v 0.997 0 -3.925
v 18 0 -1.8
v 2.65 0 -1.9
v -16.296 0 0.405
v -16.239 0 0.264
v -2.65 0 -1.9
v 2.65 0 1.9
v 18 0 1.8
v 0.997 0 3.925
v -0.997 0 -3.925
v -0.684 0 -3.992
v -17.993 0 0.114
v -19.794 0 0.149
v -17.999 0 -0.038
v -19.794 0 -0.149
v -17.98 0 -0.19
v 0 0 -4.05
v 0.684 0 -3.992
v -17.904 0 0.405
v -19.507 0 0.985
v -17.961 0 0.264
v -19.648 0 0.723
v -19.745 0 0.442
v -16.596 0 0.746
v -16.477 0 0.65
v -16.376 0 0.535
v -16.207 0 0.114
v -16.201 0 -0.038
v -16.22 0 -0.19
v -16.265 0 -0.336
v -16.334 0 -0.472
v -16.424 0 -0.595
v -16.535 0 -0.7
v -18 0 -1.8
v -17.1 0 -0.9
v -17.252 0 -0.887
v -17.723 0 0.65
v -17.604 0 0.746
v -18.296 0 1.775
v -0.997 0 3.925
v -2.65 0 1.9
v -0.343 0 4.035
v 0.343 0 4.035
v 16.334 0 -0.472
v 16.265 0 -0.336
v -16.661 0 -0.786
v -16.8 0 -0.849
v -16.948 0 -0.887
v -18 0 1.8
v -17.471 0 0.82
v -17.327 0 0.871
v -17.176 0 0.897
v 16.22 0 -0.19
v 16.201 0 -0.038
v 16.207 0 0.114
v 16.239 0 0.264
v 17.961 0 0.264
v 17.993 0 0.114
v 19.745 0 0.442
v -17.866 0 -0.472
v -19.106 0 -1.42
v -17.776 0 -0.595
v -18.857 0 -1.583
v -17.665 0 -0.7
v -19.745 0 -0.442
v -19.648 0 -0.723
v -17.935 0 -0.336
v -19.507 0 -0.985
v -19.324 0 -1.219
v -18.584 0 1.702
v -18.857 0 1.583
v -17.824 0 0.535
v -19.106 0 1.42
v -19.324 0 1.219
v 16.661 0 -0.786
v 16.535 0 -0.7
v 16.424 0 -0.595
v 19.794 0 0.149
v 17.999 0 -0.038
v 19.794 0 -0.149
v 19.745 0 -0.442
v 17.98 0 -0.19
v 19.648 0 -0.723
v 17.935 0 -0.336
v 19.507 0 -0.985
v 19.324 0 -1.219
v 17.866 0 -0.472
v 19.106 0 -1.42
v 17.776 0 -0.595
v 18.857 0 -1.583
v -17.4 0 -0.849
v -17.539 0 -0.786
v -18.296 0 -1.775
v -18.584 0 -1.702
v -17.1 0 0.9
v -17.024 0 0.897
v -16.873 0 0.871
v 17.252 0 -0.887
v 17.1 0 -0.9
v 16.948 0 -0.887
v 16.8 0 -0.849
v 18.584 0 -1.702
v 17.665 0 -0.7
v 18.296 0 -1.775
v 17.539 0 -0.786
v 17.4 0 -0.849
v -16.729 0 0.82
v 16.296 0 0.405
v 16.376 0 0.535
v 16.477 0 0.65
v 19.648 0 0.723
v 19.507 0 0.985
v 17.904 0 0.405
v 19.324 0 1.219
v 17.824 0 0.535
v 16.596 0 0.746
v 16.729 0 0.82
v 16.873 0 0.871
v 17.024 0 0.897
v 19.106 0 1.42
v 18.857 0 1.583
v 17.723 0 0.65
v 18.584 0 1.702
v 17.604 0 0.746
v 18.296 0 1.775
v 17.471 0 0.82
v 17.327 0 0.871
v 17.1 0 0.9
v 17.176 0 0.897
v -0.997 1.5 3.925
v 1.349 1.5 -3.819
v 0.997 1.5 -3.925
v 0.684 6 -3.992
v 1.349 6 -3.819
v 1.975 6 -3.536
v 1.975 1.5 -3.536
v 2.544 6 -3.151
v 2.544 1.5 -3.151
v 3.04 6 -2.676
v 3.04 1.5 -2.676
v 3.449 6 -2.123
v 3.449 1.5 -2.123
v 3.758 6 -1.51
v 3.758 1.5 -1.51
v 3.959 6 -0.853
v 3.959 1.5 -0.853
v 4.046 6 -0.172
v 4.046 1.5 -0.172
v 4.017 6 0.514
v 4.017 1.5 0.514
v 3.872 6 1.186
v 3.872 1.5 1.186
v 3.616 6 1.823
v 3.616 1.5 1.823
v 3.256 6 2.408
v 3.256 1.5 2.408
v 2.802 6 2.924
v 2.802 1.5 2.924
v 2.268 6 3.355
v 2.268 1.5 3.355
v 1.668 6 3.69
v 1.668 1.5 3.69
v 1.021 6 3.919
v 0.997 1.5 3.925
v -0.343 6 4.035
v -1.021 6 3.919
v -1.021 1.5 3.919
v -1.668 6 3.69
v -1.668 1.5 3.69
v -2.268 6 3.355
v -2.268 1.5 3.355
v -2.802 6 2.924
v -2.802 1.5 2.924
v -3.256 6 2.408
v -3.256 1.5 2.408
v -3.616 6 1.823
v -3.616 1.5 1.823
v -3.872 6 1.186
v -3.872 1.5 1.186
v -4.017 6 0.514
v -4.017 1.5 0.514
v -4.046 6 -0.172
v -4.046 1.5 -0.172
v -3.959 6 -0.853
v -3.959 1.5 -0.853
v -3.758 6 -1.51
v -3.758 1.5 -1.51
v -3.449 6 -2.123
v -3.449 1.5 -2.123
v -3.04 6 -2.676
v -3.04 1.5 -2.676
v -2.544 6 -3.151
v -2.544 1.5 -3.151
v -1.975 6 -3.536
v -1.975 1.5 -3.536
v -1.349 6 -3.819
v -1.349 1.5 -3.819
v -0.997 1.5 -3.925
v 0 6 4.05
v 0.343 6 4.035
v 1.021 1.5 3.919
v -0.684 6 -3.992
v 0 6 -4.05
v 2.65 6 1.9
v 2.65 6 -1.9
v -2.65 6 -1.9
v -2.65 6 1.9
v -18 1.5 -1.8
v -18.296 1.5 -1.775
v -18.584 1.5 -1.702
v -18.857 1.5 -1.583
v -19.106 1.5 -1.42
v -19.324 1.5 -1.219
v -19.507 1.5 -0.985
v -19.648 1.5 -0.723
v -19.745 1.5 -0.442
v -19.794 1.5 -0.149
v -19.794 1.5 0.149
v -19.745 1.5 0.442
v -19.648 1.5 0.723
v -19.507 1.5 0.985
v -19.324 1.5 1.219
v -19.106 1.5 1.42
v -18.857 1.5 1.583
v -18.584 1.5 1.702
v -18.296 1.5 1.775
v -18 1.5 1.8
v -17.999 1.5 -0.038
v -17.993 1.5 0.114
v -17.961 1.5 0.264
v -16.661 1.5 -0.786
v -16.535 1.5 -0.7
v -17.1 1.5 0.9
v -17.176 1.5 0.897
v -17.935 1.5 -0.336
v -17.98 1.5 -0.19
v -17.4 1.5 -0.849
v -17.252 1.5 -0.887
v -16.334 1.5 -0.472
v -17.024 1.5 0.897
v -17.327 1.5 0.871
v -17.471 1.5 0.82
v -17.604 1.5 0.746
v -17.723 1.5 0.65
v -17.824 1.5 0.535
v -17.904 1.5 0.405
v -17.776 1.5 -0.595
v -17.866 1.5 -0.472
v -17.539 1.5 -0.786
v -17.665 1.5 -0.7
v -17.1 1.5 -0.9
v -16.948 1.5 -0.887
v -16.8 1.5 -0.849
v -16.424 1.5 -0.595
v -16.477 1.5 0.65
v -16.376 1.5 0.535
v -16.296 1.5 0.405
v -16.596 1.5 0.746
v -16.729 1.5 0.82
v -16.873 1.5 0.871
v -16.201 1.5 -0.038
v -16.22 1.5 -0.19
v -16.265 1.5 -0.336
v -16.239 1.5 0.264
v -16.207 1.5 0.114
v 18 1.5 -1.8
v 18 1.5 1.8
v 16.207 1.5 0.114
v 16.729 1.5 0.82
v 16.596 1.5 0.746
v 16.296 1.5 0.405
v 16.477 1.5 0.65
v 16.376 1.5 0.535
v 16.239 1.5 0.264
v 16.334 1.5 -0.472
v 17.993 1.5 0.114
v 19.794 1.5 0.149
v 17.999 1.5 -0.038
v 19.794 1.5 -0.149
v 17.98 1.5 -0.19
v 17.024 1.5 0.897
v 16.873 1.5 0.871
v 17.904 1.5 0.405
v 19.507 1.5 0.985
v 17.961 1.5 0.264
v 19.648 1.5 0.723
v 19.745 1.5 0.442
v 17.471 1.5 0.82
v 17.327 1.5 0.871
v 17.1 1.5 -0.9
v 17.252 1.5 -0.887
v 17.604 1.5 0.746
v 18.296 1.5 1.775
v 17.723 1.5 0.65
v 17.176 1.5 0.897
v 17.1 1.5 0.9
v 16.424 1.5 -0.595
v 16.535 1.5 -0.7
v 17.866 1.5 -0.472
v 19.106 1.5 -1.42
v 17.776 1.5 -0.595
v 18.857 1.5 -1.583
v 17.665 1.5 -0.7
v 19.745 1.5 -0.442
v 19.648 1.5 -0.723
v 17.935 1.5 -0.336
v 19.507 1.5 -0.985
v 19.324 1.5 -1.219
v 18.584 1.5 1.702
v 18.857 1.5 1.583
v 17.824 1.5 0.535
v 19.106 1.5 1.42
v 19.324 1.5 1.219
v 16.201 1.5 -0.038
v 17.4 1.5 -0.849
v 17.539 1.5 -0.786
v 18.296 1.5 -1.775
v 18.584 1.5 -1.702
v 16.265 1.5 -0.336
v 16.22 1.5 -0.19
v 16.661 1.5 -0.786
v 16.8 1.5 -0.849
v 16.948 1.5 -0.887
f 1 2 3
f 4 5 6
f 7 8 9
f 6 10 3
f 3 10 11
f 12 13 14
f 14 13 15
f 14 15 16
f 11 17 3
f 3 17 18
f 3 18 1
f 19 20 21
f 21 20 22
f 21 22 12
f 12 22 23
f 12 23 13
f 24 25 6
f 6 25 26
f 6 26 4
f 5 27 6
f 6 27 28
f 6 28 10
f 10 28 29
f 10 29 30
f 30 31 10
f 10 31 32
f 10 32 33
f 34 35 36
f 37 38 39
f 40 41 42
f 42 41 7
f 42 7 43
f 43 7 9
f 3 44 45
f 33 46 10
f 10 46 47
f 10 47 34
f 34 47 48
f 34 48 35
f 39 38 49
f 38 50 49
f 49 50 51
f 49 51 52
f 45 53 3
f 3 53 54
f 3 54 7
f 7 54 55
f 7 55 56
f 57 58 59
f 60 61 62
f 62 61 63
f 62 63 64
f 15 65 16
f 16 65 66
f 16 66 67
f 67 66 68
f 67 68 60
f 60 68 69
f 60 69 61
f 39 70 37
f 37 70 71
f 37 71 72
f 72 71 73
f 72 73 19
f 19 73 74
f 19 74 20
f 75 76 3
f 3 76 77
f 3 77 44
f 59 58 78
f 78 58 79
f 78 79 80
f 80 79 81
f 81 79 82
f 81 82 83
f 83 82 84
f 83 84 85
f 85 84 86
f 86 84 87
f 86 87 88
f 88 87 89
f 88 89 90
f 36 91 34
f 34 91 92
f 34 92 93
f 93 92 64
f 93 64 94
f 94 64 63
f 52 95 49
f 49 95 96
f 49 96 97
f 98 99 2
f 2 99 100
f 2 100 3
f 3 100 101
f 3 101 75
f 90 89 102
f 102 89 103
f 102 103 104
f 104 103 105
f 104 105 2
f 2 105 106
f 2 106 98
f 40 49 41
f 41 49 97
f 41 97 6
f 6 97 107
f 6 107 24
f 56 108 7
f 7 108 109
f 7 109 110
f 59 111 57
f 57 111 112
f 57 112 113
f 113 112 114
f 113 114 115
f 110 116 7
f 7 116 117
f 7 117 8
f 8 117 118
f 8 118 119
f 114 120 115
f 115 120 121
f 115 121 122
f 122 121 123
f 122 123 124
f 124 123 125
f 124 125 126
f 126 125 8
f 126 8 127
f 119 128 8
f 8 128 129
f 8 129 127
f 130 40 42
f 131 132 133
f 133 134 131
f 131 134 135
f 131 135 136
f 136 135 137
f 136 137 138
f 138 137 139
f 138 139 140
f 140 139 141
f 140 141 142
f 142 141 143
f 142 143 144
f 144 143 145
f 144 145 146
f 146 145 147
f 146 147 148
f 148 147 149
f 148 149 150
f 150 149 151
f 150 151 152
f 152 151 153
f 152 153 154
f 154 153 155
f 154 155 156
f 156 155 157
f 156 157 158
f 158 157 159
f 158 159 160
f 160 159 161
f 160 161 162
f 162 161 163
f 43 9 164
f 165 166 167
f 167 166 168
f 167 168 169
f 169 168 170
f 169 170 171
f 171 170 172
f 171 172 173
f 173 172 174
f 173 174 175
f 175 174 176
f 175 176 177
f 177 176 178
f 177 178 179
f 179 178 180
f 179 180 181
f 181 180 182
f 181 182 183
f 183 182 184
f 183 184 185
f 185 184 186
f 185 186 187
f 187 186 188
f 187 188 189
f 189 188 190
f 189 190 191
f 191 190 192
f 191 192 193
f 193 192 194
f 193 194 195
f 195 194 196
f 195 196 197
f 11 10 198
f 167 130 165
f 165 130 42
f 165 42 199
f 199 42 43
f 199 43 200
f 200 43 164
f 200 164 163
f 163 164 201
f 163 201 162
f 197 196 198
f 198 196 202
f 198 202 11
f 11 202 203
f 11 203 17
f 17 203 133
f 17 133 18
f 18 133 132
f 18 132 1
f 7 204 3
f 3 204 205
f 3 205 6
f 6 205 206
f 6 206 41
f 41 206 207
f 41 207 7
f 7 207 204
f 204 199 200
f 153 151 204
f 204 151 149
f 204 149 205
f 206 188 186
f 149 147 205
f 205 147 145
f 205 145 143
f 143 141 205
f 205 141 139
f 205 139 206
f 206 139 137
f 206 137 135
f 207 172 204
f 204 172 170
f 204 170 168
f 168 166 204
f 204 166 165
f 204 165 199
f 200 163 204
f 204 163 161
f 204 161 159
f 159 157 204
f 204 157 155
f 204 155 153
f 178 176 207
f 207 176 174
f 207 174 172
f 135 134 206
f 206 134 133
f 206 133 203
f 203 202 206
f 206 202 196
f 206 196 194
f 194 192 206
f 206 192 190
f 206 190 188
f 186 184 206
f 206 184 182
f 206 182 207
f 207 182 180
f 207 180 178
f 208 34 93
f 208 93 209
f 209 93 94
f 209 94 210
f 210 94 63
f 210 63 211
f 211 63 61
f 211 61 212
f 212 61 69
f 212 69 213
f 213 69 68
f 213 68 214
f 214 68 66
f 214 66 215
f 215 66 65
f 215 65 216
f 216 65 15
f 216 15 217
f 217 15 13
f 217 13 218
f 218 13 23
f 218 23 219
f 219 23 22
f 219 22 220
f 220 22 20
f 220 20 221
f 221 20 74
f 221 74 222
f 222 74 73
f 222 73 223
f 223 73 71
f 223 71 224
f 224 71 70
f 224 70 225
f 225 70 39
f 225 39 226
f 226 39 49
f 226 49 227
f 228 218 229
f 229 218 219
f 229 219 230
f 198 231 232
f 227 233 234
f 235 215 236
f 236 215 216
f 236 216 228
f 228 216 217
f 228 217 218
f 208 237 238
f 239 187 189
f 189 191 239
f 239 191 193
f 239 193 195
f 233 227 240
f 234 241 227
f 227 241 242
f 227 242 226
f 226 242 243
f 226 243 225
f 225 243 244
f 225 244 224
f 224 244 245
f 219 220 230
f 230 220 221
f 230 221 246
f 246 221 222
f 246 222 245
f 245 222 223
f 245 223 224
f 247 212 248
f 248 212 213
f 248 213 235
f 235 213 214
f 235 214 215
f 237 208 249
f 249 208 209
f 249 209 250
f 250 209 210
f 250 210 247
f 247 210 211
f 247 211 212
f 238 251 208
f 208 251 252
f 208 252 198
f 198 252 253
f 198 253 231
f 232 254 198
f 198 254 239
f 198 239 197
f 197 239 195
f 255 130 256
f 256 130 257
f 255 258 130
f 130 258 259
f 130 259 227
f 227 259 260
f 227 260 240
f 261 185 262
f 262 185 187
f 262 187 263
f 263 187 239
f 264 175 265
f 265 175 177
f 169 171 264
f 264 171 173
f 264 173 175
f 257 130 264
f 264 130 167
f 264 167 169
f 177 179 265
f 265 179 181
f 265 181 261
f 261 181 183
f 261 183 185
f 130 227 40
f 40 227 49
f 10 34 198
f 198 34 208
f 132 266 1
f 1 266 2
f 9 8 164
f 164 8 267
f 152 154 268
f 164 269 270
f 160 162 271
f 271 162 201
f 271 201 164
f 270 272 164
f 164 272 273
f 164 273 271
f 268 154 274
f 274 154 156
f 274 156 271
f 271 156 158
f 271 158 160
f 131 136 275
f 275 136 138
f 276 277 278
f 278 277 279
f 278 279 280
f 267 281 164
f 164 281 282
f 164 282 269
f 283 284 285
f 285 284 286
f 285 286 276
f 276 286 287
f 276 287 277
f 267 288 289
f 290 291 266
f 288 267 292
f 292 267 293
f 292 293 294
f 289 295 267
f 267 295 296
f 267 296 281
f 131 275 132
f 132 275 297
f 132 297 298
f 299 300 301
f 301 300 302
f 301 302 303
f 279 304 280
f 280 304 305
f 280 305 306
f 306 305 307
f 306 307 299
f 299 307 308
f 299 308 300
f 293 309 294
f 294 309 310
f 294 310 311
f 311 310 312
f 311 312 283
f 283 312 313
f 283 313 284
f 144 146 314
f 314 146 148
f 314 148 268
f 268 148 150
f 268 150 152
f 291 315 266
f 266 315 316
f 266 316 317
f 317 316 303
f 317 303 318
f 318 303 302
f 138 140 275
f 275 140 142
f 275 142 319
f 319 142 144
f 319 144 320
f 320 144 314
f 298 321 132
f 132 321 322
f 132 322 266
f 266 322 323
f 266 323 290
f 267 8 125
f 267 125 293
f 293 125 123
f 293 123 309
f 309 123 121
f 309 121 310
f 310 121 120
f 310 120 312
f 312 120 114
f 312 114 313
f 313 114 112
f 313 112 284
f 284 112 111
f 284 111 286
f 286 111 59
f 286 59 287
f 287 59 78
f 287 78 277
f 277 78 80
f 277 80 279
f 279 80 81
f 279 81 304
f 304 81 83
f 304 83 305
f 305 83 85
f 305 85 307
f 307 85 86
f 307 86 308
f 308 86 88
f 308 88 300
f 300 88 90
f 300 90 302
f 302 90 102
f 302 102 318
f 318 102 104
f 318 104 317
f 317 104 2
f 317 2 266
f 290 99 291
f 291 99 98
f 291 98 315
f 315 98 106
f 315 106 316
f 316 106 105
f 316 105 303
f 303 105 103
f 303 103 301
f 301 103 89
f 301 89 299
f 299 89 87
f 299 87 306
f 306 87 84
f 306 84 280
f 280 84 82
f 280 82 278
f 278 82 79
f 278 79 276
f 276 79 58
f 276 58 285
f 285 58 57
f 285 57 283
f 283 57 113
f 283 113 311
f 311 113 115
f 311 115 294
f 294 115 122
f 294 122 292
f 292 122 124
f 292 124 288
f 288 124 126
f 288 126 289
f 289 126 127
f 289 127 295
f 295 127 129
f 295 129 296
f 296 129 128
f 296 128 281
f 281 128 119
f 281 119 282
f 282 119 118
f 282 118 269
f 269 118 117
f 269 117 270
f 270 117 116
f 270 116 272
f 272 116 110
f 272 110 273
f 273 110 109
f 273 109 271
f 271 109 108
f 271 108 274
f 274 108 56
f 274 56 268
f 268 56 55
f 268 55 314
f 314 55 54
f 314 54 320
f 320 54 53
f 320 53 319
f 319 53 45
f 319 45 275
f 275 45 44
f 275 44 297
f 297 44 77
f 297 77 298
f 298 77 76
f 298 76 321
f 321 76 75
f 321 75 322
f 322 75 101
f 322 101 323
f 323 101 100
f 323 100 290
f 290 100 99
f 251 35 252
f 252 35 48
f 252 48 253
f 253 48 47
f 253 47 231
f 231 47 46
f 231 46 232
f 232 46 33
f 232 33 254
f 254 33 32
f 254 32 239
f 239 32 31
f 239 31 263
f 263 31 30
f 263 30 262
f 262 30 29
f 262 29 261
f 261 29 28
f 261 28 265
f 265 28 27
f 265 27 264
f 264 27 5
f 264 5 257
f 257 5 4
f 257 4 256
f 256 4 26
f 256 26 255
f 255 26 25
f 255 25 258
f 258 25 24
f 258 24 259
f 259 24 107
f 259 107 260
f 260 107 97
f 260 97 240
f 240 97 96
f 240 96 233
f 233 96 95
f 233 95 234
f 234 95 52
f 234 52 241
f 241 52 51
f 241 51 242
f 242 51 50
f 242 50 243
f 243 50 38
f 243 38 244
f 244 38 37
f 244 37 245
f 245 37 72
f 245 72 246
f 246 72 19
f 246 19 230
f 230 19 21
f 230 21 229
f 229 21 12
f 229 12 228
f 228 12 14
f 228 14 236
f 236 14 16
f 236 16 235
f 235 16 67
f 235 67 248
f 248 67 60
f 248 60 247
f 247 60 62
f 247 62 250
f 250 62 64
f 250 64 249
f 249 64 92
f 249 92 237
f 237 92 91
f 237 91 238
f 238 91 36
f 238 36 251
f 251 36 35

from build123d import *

# Parameters (mm, degrees)
SKETCH1_R           = 4.05
SKETCH1_W           = 5.3
SKETCH1_H           = 3.8
BOSS_EXTRUDE1_DEPTH = 6
BOSS_EXTRUDE2_DEPTH = 1.5
SKETCH3_R           = 0.9
SKETCH3_W           = 5.3
SKETCH3_H           = 3.8
CUT_EXTRUDE1_DEPTH  = 1.5


with BuildPart() as part:
    # Sketch1 → Boss-Extrude1 (new body)
    with BuildSketch(Plane(origin=(0, 0, 0), x_dir=(1, 0, 0), z_dir=(0, 1, 0))):
        with Locations(Location((0, 0, 0), (0, 0, 270))):
            Circle(SKETCH1_R)
        Rectangle(SKETCH1_W, SKETCH1_H, mode=Mode.SUBTRACT)
    extrude(amount=BOSS_EXTRUDE1_DEPTH)

    # Sketch2 → Boss-Extrude2 (add)
    with BuildSketch(Plane(origin=(0, 0, 0), x_dir=(1, 0, 0), z_dir=(0, 1, 0))):
        with BuildLine():
            Line((-18, 1.8), (0, 4.05))
            Line((0, 4.05), (18, 1.8))
            ThreePointArc((18, 1.8), (19.8, 0), (18, -1.8))
            Line((18, -1.8), (0, -4.05))
            Line((0, -4.05), (-18, -1.8))
            ThreePointArc((-18, -1.8), (-19.8, 0), (-18, 1.8))
        make_face()
    extrude(amount=BOSS_EXTRUDE2_DEPTH)

    # Sketch3 → Cut-Extrude1 (cut)
    with BuildSketch(Plane(origin=(0, 0, 0), x_dir=(1, 0, 0), z_dir=(0, 1, 0))):
        with Locations(Location((-17.1, 0, 0), (0, 0, 270))):
            Circle(SKETCH3_R)
        with Locations(Location((17.1, 0, 0), (0, 0, 270))):
            Circle(SKETCH3_R)
        Rectangle(SKETCH3_W, SKETCH3_H)
    extrude(amount=CUT_EXTRUDE1_DEPTH, mode=Mode.SUBTRACT)


solid = part.part
